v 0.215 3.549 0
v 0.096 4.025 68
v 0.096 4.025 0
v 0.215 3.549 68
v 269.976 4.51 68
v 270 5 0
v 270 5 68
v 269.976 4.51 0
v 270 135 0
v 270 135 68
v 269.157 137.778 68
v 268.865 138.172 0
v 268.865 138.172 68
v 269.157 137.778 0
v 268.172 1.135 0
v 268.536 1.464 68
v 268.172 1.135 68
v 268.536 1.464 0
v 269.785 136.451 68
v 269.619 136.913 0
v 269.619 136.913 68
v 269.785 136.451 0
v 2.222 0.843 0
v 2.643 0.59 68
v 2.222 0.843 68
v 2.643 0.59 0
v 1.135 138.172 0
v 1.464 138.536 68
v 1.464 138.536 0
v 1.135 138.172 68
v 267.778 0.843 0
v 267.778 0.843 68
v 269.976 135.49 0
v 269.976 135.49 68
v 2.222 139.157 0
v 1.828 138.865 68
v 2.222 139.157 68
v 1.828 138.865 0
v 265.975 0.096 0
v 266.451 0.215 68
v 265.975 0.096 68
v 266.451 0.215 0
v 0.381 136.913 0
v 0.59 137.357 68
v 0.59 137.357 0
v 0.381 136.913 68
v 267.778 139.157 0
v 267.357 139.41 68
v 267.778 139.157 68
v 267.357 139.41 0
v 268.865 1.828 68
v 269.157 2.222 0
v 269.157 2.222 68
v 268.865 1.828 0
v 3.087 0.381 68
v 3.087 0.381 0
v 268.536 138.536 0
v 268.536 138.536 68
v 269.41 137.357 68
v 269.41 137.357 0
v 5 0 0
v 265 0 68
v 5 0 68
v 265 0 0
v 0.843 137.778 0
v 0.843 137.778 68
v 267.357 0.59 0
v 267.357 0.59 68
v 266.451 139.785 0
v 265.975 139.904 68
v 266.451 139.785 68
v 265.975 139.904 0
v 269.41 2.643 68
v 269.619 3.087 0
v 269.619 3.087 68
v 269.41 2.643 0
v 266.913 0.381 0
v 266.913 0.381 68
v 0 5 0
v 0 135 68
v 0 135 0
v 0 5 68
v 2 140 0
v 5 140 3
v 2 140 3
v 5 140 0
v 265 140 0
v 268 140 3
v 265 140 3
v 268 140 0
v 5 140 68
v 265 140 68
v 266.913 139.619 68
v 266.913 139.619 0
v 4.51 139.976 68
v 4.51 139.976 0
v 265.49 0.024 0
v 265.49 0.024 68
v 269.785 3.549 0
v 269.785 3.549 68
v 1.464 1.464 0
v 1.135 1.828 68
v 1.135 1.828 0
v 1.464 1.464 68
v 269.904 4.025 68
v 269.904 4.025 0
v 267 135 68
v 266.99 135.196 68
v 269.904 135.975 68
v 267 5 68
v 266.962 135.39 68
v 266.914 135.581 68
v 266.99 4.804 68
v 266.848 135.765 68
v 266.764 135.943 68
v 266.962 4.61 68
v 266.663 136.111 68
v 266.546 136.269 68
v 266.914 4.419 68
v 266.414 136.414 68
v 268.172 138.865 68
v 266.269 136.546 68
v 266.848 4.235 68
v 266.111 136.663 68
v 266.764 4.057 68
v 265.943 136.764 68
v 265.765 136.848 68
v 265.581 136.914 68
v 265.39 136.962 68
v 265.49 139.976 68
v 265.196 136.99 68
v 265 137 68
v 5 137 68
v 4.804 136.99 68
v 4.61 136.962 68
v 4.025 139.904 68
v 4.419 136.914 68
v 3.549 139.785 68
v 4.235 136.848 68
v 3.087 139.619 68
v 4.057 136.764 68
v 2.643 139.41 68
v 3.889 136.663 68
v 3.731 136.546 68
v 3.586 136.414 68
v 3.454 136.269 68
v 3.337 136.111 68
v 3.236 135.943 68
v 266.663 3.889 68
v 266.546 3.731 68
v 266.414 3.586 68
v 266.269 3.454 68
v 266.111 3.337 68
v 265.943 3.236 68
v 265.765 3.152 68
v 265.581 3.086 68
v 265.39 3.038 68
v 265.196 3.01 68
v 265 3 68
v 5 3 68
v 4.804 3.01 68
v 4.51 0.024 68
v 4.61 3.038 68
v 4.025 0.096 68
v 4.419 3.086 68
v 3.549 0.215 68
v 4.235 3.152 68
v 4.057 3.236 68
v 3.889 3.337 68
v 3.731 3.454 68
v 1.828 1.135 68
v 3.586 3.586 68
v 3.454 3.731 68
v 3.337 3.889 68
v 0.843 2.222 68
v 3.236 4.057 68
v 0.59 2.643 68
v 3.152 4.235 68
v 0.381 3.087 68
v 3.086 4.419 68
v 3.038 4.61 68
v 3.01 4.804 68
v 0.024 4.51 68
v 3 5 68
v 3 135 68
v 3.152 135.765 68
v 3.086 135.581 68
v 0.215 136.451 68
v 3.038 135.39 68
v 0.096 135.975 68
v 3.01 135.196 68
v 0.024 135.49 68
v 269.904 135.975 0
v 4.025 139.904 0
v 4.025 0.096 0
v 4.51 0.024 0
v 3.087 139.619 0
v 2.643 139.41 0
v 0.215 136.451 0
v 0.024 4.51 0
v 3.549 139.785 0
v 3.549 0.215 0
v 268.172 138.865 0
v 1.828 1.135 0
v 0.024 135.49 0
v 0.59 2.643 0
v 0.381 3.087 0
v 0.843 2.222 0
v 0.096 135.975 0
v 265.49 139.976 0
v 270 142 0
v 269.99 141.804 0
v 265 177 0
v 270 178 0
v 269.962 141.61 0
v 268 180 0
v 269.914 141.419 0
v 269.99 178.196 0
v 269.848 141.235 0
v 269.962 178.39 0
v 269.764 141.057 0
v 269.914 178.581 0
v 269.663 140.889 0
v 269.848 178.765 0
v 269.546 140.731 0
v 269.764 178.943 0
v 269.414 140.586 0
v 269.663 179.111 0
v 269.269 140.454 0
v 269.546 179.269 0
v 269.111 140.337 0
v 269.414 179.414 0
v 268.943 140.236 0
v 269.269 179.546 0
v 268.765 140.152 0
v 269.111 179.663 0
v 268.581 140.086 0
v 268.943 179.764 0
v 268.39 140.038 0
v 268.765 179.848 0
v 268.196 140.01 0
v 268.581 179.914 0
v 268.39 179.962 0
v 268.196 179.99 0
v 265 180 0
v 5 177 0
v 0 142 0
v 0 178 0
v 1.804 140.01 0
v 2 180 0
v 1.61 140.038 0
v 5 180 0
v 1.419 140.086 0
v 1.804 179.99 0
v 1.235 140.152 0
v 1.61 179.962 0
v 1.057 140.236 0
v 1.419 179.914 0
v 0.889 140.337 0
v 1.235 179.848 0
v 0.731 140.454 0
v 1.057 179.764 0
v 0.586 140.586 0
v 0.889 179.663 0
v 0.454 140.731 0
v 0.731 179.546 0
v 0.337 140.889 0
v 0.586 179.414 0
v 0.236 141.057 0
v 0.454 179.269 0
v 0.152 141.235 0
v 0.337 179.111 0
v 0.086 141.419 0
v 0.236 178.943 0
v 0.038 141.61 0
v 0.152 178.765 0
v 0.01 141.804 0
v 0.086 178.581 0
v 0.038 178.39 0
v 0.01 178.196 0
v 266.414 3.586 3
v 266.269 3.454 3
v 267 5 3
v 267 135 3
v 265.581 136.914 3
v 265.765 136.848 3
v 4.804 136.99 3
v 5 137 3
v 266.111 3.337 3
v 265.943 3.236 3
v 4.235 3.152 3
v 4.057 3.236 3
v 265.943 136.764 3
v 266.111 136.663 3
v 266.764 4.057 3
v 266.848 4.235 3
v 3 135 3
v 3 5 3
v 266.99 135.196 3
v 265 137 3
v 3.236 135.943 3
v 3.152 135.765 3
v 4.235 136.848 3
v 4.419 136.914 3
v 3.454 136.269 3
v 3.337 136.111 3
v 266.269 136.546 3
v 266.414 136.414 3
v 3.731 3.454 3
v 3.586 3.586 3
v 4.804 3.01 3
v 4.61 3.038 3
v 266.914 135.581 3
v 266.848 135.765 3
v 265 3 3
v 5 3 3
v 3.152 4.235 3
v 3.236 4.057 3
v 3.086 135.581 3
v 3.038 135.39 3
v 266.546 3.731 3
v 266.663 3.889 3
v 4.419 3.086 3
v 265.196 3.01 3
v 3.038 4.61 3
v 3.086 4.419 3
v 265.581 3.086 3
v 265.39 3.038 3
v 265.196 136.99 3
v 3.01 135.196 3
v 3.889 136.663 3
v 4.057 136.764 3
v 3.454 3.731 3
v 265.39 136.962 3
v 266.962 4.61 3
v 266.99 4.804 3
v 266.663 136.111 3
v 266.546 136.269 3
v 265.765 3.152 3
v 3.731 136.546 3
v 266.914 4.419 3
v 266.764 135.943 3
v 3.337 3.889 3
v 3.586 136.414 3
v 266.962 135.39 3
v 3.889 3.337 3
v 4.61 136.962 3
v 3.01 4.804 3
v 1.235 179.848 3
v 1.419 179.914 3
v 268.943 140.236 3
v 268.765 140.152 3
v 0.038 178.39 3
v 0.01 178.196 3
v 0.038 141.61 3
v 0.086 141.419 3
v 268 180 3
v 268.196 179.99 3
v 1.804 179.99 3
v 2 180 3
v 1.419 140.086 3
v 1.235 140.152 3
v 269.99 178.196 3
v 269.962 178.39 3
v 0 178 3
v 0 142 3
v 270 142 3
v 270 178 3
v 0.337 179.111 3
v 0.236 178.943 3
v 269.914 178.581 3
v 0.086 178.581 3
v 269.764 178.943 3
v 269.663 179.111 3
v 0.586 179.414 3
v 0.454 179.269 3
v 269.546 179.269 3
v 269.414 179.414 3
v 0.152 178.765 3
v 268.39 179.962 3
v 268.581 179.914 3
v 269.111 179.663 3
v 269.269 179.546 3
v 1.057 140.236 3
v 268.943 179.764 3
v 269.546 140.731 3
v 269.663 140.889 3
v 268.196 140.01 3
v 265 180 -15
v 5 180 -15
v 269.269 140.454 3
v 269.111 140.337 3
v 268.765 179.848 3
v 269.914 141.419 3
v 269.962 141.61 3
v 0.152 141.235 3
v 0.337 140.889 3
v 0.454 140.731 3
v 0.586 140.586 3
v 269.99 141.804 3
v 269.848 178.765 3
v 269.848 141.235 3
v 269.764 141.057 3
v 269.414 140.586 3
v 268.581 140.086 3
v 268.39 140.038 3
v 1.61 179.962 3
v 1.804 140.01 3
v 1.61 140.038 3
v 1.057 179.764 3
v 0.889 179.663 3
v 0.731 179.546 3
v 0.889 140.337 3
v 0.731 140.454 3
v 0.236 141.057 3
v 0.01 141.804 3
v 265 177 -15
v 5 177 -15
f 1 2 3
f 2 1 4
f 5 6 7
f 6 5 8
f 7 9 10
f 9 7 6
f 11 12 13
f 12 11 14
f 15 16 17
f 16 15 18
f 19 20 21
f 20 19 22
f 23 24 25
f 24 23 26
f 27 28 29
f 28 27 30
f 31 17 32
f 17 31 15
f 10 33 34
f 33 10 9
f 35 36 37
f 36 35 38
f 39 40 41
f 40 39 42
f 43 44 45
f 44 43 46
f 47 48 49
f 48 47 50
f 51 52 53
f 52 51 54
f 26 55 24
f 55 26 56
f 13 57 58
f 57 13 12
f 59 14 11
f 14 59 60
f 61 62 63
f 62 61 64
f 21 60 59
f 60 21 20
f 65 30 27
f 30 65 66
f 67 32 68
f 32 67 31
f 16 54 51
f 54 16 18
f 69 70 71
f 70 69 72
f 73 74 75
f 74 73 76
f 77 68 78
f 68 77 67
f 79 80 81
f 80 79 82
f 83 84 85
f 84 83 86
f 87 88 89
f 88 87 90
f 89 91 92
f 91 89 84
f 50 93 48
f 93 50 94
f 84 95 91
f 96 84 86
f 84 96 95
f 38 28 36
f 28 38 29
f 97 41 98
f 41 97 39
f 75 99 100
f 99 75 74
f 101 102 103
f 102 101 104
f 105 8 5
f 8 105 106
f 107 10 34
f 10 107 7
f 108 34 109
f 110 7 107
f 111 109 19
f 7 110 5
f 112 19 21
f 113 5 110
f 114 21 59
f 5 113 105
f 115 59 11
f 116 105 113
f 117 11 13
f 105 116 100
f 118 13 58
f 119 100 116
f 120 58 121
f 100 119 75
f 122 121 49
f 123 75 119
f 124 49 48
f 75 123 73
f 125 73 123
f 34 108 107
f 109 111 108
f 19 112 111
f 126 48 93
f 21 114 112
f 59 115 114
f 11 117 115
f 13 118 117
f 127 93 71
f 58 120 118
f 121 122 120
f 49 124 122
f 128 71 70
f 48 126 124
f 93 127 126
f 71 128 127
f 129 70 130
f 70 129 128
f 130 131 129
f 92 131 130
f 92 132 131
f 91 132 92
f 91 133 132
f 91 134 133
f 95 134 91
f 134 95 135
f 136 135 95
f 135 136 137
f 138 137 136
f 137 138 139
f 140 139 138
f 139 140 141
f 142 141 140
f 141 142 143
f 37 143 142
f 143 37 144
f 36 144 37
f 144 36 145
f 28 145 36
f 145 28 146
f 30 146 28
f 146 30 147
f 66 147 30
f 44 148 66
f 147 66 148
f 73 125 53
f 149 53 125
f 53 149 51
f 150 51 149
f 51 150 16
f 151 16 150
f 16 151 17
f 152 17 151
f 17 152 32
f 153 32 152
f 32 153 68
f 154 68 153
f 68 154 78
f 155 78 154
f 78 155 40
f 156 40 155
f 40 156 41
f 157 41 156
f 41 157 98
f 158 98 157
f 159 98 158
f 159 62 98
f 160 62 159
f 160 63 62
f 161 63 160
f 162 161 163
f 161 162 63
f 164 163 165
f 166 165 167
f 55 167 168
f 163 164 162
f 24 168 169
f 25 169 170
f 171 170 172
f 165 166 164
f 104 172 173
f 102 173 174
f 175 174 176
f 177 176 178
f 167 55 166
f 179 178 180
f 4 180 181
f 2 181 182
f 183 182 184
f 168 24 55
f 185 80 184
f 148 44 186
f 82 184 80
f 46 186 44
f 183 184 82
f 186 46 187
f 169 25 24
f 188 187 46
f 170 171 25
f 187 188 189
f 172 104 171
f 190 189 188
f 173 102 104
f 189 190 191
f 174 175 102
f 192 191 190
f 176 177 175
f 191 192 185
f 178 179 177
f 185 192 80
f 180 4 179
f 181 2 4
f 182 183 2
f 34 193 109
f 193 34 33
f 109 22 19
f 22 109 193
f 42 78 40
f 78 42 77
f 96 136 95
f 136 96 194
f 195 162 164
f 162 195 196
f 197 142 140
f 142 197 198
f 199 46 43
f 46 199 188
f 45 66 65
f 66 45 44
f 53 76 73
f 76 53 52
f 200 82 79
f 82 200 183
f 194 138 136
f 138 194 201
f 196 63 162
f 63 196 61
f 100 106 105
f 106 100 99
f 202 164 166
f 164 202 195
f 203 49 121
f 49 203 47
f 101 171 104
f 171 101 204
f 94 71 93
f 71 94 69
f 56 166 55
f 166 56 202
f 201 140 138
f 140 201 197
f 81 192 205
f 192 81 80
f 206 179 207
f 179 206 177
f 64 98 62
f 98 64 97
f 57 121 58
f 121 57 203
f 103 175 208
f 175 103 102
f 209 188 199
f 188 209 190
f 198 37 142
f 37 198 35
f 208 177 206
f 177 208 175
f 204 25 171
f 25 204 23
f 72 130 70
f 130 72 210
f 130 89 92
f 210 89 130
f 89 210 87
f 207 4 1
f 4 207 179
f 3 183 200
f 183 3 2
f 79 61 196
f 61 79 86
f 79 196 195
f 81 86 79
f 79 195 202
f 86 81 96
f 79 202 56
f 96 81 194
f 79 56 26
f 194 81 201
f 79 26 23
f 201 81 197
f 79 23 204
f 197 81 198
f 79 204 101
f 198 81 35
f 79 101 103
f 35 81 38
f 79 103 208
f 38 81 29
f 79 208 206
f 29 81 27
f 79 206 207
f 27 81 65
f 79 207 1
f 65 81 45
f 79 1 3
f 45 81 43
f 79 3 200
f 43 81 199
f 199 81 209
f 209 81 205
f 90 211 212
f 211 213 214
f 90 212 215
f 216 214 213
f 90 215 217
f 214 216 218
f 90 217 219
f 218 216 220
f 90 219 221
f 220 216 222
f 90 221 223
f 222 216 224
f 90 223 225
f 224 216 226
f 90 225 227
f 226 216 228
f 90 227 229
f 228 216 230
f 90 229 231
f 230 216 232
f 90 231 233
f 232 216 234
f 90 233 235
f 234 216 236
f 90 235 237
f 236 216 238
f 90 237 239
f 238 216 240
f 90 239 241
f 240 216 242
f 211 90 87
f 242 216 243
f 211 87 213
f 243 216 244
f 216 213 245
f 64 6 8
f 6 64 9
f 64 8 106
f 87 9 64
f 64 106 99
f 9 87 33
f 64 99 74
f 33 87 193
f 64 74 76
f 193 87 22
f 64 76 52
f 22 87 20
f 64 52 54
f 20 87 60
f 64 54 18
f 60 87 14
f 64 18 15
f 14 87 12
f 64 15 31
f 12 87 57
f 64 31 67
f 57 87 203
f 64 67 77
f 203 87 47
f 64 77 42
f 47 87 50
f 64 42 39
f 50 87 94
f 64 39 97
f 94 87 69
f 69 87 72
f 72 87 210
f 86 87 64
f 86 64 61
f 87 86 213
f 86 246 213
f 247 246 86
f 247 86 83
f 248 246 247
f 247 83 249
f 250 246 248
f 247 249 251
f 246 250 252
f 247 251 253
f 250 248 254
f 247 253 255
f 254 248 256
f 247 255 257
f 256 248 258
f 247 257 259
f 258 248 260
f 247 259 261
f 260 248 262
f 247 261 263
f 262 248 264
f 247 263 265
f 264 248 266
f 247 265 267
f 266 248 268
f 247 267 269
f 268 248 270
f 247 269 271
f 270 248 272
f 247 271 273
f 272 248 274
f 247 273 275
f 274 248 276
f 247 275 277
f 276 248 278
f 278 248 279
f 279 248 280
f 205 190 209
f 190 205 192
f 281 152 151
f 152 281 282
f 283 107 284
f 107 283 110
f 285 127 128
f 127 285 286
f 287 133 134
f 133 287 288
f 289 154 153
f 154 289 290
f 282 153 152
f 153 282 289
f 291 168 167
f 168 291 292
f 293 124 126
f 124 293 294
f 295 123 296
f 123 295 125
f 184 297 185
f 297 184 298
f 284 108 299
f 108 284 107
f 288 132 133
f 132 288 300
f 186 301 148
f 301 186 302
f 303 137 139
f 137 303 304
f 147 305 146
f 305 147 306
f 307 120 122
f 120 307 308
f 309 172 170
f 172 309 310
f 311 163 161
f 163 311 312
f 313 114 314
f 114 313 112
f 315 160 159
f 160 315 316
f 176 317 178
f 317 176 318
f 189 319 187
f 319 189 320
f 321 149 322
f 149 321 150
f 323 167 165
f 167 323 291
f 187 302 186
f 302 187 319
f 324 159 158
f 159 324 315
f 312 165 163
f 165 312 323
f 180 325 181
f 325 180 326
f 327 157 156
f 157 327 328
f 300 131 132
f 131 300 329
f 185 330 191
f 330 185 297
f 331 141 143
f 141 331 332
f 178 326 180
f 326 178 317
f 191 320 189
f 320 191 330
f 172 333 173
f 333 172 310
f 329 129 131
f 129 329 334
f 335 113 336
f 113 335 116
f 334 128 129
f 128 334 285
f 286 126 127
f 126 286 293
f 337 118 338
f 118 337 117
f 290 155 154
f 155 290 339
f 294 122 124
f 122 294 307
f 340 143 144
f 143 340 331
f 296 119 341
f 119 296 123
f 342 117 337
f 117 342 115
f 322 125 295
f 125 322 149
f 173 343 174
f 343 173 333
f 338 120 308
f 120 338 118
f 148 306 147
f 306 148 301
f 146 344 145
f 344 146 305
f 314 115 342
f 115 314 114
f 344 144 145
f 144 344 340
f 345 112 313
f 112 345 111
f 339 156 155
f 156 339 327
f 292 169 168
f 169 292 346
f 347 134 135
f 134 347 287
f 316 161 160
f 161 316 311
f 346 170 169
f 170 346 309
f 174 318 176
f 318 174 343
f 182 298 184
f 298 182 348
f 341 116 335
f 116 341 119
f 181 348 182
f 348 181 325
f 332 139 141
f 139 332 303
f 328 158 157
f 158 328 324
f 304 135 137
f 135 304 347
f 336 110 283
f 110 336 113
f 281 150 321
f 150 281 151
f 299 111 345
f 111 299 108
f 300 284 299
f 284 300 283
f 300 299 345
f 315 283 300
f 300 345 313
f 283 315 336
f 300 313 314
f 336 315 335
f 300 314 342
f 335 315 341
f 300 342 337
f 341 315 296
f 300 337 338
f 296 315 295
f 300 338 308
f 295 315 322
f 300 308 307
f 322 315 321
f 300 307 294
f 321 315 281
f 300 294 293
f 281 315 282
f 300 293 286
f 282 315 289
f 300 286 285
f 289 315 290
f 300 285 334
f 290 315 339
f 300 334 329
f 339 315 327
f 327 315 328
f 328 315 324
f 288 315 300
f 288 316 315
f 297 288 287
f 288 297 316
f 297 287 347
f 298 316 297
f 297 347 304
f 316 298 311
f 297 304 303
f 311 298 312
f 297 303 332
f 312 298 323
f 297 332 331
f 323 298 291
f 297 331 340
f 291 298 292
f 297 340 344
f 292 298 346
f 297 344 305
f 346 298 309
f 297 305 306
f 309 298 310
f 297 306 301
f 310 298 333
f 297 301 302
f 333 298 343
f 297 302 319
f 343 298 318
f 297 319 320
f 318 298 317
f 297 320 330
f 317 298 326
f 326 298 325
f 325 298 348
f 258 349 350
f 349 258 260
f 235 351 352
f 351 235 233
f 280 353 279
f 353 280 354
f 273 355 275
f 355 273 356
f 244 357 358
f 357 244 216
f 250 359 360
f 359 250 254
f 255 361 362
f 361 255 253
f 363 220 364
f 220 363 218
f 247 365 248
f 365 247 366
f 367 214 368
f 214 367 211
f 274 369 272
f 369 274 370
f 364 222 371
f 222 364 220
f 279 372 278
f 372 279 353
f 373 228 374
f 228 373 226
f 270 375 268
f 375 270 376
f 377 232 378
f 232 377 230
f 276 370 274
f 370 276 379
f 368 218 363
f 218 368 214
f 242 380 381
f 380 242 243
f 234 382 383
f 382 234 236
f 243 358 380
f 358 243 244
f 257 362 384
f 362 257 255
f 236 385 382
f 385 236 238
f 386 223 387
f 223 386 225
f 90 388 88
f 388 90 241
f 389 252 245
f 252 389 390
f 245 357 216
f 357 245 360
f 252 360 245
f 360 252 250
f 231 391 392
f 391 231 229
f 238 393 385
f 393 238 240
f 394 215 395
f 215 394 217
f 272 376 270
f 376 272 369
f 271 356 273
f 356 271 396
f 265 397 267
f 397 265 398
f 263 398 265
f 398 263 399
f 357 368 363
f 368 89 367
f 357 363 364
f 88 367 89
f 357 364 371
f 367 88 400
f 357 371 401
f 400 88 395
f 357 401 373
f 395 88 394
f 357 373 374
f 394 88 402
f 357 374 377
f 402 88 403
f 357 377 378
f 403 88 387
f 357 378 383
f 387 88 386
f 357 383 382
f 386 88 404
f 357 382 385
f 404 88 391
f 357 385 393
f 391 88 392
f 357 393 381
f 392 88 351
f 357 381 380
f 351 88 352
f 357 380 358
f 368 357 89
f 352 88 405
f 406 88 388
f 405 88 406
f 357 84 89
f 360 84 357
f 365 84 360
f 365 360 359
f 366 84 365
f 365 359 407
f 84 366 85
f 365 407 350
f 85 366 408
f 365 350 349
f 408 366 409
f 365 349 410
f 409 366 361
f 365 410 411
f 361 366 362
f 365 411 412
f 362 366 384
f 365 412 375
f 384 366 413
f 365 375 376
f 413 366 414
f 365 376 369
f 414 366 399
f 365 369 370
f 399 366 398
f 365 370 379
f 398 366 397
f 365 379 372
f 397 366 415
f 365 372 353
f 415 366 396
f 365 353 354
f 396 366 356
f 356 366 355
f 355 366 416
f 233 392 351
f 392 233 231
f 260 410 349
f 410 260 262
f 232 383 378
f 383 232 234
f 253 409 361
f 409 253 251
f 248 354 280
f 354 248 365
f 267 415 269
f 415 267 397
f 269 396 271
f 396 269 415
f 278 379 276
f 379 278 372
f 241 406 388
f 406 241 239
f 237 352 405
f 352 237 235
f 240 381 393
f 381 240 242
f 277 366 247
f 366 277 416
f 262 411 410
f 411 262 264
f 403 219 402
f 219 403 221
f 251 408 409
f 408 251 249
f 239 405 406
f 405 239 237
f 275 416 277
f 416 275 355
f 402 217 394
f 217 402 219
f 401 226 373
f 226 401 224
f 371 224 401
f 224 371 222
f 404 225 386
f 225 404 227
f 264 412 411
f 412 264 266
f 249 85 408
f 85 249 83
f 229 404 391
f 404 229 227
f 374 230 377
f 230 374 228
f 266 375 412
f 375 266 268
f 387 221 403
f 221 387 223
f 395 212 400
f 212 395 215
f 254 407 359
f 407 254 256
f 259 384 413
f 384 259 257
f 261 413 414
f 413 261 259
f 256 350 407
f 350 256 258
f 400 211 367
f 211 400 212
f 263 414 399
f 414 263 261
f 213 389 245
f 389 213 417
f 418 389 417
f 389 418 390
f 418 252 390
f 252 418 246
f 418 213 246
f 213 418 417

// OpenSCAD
// Tesla Model 3 (2017–2023) Lotion Holder
// Mounts behind the top of the 15" landscape center touchscreen.
// The flange rests on the screen's top frame; the hook lip catches the front
// bezel edge — friction + gravity fit, no tools or adhesive needed.
//
// 2017–2023 Tesla Model 3 center screen reference dimensions:
//   Screen housing width             ≈ 358 mm  → holder centered, 44 mm each side
//   Top bezel depth (front-to-back)  ≈ 36 mm  → flange_d = 40 mm covers it fully
//   Front bezel edge height          ≈ 18 mm  → hook_h   = 15 mm (3 mm clearance)
//   Usable space behind screen top   ≈ 140 mm → tray_d   = 140 mm
//
// Installation: lower holder from above into the space behind the screen.
// Flange slides over the top of the screen frame; hook lip drops down on the
// driver side of the bezel. The bottle is accessible by reaching over the screen.
//
// @param tray_w 270
// @param tray_d 140
// @param tray_h 68
// @param wall_t 3
// @param flange_d 40
// @param hook_h 15
// @param corner_r 5

tray_w   = 270;   // total holder width, left to right (mm)
tray_d   = 140;   // depth of bottle cavity, screen-side to rear wall (mm)
tray_h   = 68;    // height of side and back walls (mm)
wall_t   = 3;     // wall and floor thickness (mm)
flange_d = 40;    // mounting flange depth — overlaps screen top bezel (mm)
hook_h   = 15;    // hook lip drop below flange — catches front bezel edge (mm)
corner_r = 5;     // outer corner radius (mm)

$fn = 64;
eps = 0.01;

// Coordinate origin: rear-left corner of tray, at floor level.
// +X  → right
// +Y  → toward driver (front of tray, then flange, then hook tip)
// +Z  → up (walls rise here; hook lip hangs at Z < 0)

// ─── Helper: axis-aligned rounded box ────────────────────────────────────────
module rbox(w, d, h, r) {
    hull()
        for (x = [r, w-r], y = [r, d-r])
            translate([x, y, 0]) cylinder(r=r, h=h);
}

// ─── Main tray shell (open top) ───────────────────────────────────────────────
module tray() {
    inner_r = max(corner_r - wall_t, 1);
    difference() {
        rbox(tray_w, tray_d, tray_h, corner_r);
        // hollow interior — floor and all walls remain
        translate([wall_t, wall_t, wall_t])
            rbox(tray_w - 2*wall_t, tray_d - 2*wall_t, tray_h, inner_r);
    }
}

// ─── Mounting flange (rests flat on top of screen frame) ──────────────────────
// Extends from the front wall of the tray toward the driver / screen side.
module flange() {
    translate([0, tray_d, 0])
        rbox(tray_w, flange_d, wall_t, max(corner_r - wall_t, 2));
}

// ─── Hook lip (drops below flange, catches front edge of screen bezel) ────────
// Prevents the holder from sliding toward the driver when removing the bottle.
module hook_lip() {
    translate([corner_r, tray_d + flange_d - wall_t, -hook_h])
        cube([tray_w - 2*corner_r, wall_t, hook_h]);
}

// ─── Assembly ─────────────────────────────────────────────────────────────────
module lotion_holder() {
    union() {
        tray();
        flange();
        hook_lip();
    }
}

lotion_holder();
